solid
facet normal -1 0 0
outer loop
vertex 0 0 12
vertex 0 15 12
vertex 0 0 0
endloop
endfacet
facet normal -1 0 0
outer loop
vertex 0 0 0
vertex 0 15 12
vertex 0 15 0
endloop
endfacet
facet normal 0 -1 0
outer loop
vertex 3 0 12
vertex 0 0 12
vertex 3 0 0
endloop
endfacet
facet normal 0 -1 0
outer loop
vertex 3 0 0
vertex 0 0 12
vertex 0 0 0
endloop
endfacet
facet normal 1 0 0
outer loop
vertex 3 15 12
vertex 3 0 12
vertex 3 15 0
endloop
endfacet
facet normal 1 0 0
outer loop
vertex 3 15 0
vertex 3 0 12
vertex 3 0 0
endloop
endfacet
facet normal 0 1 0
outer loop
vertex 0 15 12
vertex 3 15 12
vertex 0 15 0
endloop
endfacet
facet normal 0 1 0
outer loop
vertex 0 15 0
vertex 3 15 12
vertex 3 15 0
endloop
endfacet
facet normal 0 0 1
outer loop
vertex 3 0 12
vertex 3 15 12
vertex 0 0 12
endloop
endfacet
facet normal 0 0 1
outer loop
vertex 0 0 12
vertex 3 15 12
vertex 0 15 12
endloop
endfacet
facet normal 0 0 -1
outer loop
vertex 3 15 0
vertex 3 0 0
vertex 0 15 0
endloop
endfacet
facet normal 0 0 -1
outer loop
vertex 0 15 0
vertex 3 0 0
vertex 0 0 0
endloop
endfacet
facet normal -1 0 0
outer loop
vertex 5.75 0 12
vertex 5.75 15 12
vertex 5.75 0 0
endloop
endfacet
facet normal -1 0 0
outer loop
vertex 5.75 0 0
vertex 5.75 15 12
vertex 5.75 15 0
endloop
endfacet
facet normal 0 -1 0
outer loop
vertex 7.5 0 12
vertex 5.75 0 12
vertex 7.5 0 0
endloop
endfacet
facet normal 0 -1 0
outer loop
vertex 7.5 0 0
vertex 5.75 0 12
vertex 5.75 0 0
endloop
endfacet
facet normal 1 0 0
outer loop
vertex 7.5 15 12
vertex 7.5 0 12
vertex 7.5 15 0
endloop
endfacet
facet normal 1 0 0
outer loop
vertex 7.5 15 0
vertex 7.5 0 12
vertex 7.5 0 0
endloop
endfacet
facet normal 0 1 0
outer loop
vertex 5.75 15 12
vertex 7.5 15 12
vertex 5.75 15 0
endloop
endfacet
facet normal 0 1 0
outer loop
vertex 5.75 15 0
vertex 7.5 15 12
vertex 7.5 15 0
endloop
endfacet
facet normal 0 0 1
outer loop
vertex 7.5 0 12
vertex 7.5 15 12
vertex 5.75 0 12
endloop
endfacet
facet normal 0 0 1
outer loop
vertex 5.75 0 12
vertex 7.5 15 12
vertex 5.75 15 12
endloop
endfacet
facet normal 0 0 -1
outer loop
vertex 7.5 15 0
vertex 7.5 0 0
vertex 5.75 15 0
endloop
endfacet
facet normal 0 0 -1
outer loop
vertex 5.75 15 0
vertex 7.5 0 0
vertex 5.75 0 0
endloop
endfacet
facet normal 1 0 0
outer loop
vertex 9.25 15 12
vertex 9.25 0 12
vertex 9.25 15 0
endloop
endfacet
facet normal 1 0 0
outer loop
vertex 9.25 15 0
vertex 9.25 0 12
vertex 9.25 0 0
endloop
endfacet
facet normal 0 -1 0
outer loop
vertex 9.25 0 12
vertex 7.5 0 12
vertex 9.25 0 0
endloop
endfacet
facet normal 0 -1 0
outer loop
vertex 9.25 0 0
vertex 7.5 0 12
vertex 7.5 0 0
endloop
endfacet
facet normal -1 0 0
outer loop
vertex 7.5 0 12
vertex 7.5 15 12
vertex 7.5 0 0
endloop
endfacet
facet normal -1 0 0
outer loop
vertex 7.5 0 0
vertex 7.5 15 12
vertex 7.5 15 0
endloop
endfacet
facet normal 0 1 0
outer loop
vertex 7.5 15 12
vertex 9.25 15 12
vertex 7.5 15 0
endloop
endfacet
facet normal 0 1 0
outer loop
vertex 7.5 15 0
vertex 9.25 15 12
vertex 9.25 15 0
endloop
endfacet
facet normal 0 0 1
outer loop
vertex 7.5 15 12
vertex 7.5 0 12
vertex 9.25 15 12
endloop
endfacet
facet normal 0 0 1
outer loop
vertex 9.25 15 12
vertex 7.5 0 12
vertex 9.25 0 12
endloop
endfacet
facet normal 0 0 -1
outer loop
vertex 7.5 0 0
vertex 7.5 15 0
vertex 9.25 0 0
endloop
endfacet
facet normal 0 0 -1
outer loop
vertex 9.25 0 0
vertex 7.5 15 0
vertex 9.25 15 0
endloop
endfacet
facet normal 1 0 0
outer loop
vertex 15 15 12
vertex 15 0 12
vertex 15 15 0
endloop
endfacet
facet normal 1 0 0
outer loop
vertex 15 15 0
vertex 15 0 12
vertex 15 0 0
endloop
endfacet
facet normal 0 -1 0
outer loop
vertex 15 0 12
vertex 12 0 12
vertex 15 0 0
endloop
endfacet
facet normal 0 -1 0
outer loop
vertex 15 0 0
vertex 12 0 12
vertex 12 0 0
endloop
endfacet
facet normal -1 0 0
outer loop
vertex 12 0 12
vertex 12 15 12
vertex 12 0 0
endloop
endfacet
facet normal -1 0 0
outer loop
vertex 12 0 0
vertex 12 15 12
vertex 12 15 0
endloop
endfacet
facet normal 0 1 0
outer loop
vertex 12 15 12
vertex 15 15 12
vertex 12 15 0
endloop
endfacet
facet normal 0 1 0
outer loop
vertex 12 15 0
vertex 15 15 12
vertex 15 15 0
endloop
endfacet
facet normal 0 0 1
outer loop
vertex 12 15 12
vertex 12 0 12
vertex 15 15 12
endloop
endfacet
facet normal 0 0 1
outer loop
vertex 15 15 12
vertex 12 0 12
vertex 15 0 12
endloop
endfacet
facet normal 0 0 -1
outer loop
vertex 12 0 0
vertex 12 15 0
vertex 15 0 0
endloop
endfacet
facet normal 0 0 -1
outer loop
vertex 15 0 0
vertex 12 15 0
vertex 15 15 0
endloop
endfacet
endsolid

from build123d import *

# Parameters (mm, degrees)
SKETCH1_W             = 3
SKETCH1_H             = 15
BOSS_EXTRUDE1_DEPTH   = 12
SKETCH1_W_2           = 1.75
BOSS_EXTRUDE1_2_DEPTH = 12


with BuildPart() as part:
    # Sketch1 → Boss-Extrude1 (new body)
    with BuildSketch(Plane.XY):
        with Locations((1.5, 7.5)):
            Rectangle(SKETCH1_W, SKETCH1_H)
    extrude(amount=BOSS_EXTRUDE1_DEPTH)


with BuildPart() as body_2:
    # Sketch1 → Boss-Extrude1 2 (new body)
    with BuildSketch(Plane.XY):
        with Locations((6.625, 7.5)):
            Rectangle(SKETCH1_W_2, SKETCH1_H)
    extrude(amount=BOSS_EXTRUDE1_2_DEPTH)


with BuildPart() as body_3:
    # Mirror1: mirrored copy
    add(body_2.part.mirror(Plane(origin=(7.5, 15, 12), x_dir=(0, 0, 1), z_dir=(-1, 0, 0))))


with BuildPart() as body_4:
    # Mirror1 2: mirrored copy
    add(part.part.mirror(Plane(origin=(7.5, 15, 12), x_dir=(0, 0, 1), z_dir=(-1, 0, 0))))


solid = Compound([part.part, body_2.part, body_3.part, body_4.part])
